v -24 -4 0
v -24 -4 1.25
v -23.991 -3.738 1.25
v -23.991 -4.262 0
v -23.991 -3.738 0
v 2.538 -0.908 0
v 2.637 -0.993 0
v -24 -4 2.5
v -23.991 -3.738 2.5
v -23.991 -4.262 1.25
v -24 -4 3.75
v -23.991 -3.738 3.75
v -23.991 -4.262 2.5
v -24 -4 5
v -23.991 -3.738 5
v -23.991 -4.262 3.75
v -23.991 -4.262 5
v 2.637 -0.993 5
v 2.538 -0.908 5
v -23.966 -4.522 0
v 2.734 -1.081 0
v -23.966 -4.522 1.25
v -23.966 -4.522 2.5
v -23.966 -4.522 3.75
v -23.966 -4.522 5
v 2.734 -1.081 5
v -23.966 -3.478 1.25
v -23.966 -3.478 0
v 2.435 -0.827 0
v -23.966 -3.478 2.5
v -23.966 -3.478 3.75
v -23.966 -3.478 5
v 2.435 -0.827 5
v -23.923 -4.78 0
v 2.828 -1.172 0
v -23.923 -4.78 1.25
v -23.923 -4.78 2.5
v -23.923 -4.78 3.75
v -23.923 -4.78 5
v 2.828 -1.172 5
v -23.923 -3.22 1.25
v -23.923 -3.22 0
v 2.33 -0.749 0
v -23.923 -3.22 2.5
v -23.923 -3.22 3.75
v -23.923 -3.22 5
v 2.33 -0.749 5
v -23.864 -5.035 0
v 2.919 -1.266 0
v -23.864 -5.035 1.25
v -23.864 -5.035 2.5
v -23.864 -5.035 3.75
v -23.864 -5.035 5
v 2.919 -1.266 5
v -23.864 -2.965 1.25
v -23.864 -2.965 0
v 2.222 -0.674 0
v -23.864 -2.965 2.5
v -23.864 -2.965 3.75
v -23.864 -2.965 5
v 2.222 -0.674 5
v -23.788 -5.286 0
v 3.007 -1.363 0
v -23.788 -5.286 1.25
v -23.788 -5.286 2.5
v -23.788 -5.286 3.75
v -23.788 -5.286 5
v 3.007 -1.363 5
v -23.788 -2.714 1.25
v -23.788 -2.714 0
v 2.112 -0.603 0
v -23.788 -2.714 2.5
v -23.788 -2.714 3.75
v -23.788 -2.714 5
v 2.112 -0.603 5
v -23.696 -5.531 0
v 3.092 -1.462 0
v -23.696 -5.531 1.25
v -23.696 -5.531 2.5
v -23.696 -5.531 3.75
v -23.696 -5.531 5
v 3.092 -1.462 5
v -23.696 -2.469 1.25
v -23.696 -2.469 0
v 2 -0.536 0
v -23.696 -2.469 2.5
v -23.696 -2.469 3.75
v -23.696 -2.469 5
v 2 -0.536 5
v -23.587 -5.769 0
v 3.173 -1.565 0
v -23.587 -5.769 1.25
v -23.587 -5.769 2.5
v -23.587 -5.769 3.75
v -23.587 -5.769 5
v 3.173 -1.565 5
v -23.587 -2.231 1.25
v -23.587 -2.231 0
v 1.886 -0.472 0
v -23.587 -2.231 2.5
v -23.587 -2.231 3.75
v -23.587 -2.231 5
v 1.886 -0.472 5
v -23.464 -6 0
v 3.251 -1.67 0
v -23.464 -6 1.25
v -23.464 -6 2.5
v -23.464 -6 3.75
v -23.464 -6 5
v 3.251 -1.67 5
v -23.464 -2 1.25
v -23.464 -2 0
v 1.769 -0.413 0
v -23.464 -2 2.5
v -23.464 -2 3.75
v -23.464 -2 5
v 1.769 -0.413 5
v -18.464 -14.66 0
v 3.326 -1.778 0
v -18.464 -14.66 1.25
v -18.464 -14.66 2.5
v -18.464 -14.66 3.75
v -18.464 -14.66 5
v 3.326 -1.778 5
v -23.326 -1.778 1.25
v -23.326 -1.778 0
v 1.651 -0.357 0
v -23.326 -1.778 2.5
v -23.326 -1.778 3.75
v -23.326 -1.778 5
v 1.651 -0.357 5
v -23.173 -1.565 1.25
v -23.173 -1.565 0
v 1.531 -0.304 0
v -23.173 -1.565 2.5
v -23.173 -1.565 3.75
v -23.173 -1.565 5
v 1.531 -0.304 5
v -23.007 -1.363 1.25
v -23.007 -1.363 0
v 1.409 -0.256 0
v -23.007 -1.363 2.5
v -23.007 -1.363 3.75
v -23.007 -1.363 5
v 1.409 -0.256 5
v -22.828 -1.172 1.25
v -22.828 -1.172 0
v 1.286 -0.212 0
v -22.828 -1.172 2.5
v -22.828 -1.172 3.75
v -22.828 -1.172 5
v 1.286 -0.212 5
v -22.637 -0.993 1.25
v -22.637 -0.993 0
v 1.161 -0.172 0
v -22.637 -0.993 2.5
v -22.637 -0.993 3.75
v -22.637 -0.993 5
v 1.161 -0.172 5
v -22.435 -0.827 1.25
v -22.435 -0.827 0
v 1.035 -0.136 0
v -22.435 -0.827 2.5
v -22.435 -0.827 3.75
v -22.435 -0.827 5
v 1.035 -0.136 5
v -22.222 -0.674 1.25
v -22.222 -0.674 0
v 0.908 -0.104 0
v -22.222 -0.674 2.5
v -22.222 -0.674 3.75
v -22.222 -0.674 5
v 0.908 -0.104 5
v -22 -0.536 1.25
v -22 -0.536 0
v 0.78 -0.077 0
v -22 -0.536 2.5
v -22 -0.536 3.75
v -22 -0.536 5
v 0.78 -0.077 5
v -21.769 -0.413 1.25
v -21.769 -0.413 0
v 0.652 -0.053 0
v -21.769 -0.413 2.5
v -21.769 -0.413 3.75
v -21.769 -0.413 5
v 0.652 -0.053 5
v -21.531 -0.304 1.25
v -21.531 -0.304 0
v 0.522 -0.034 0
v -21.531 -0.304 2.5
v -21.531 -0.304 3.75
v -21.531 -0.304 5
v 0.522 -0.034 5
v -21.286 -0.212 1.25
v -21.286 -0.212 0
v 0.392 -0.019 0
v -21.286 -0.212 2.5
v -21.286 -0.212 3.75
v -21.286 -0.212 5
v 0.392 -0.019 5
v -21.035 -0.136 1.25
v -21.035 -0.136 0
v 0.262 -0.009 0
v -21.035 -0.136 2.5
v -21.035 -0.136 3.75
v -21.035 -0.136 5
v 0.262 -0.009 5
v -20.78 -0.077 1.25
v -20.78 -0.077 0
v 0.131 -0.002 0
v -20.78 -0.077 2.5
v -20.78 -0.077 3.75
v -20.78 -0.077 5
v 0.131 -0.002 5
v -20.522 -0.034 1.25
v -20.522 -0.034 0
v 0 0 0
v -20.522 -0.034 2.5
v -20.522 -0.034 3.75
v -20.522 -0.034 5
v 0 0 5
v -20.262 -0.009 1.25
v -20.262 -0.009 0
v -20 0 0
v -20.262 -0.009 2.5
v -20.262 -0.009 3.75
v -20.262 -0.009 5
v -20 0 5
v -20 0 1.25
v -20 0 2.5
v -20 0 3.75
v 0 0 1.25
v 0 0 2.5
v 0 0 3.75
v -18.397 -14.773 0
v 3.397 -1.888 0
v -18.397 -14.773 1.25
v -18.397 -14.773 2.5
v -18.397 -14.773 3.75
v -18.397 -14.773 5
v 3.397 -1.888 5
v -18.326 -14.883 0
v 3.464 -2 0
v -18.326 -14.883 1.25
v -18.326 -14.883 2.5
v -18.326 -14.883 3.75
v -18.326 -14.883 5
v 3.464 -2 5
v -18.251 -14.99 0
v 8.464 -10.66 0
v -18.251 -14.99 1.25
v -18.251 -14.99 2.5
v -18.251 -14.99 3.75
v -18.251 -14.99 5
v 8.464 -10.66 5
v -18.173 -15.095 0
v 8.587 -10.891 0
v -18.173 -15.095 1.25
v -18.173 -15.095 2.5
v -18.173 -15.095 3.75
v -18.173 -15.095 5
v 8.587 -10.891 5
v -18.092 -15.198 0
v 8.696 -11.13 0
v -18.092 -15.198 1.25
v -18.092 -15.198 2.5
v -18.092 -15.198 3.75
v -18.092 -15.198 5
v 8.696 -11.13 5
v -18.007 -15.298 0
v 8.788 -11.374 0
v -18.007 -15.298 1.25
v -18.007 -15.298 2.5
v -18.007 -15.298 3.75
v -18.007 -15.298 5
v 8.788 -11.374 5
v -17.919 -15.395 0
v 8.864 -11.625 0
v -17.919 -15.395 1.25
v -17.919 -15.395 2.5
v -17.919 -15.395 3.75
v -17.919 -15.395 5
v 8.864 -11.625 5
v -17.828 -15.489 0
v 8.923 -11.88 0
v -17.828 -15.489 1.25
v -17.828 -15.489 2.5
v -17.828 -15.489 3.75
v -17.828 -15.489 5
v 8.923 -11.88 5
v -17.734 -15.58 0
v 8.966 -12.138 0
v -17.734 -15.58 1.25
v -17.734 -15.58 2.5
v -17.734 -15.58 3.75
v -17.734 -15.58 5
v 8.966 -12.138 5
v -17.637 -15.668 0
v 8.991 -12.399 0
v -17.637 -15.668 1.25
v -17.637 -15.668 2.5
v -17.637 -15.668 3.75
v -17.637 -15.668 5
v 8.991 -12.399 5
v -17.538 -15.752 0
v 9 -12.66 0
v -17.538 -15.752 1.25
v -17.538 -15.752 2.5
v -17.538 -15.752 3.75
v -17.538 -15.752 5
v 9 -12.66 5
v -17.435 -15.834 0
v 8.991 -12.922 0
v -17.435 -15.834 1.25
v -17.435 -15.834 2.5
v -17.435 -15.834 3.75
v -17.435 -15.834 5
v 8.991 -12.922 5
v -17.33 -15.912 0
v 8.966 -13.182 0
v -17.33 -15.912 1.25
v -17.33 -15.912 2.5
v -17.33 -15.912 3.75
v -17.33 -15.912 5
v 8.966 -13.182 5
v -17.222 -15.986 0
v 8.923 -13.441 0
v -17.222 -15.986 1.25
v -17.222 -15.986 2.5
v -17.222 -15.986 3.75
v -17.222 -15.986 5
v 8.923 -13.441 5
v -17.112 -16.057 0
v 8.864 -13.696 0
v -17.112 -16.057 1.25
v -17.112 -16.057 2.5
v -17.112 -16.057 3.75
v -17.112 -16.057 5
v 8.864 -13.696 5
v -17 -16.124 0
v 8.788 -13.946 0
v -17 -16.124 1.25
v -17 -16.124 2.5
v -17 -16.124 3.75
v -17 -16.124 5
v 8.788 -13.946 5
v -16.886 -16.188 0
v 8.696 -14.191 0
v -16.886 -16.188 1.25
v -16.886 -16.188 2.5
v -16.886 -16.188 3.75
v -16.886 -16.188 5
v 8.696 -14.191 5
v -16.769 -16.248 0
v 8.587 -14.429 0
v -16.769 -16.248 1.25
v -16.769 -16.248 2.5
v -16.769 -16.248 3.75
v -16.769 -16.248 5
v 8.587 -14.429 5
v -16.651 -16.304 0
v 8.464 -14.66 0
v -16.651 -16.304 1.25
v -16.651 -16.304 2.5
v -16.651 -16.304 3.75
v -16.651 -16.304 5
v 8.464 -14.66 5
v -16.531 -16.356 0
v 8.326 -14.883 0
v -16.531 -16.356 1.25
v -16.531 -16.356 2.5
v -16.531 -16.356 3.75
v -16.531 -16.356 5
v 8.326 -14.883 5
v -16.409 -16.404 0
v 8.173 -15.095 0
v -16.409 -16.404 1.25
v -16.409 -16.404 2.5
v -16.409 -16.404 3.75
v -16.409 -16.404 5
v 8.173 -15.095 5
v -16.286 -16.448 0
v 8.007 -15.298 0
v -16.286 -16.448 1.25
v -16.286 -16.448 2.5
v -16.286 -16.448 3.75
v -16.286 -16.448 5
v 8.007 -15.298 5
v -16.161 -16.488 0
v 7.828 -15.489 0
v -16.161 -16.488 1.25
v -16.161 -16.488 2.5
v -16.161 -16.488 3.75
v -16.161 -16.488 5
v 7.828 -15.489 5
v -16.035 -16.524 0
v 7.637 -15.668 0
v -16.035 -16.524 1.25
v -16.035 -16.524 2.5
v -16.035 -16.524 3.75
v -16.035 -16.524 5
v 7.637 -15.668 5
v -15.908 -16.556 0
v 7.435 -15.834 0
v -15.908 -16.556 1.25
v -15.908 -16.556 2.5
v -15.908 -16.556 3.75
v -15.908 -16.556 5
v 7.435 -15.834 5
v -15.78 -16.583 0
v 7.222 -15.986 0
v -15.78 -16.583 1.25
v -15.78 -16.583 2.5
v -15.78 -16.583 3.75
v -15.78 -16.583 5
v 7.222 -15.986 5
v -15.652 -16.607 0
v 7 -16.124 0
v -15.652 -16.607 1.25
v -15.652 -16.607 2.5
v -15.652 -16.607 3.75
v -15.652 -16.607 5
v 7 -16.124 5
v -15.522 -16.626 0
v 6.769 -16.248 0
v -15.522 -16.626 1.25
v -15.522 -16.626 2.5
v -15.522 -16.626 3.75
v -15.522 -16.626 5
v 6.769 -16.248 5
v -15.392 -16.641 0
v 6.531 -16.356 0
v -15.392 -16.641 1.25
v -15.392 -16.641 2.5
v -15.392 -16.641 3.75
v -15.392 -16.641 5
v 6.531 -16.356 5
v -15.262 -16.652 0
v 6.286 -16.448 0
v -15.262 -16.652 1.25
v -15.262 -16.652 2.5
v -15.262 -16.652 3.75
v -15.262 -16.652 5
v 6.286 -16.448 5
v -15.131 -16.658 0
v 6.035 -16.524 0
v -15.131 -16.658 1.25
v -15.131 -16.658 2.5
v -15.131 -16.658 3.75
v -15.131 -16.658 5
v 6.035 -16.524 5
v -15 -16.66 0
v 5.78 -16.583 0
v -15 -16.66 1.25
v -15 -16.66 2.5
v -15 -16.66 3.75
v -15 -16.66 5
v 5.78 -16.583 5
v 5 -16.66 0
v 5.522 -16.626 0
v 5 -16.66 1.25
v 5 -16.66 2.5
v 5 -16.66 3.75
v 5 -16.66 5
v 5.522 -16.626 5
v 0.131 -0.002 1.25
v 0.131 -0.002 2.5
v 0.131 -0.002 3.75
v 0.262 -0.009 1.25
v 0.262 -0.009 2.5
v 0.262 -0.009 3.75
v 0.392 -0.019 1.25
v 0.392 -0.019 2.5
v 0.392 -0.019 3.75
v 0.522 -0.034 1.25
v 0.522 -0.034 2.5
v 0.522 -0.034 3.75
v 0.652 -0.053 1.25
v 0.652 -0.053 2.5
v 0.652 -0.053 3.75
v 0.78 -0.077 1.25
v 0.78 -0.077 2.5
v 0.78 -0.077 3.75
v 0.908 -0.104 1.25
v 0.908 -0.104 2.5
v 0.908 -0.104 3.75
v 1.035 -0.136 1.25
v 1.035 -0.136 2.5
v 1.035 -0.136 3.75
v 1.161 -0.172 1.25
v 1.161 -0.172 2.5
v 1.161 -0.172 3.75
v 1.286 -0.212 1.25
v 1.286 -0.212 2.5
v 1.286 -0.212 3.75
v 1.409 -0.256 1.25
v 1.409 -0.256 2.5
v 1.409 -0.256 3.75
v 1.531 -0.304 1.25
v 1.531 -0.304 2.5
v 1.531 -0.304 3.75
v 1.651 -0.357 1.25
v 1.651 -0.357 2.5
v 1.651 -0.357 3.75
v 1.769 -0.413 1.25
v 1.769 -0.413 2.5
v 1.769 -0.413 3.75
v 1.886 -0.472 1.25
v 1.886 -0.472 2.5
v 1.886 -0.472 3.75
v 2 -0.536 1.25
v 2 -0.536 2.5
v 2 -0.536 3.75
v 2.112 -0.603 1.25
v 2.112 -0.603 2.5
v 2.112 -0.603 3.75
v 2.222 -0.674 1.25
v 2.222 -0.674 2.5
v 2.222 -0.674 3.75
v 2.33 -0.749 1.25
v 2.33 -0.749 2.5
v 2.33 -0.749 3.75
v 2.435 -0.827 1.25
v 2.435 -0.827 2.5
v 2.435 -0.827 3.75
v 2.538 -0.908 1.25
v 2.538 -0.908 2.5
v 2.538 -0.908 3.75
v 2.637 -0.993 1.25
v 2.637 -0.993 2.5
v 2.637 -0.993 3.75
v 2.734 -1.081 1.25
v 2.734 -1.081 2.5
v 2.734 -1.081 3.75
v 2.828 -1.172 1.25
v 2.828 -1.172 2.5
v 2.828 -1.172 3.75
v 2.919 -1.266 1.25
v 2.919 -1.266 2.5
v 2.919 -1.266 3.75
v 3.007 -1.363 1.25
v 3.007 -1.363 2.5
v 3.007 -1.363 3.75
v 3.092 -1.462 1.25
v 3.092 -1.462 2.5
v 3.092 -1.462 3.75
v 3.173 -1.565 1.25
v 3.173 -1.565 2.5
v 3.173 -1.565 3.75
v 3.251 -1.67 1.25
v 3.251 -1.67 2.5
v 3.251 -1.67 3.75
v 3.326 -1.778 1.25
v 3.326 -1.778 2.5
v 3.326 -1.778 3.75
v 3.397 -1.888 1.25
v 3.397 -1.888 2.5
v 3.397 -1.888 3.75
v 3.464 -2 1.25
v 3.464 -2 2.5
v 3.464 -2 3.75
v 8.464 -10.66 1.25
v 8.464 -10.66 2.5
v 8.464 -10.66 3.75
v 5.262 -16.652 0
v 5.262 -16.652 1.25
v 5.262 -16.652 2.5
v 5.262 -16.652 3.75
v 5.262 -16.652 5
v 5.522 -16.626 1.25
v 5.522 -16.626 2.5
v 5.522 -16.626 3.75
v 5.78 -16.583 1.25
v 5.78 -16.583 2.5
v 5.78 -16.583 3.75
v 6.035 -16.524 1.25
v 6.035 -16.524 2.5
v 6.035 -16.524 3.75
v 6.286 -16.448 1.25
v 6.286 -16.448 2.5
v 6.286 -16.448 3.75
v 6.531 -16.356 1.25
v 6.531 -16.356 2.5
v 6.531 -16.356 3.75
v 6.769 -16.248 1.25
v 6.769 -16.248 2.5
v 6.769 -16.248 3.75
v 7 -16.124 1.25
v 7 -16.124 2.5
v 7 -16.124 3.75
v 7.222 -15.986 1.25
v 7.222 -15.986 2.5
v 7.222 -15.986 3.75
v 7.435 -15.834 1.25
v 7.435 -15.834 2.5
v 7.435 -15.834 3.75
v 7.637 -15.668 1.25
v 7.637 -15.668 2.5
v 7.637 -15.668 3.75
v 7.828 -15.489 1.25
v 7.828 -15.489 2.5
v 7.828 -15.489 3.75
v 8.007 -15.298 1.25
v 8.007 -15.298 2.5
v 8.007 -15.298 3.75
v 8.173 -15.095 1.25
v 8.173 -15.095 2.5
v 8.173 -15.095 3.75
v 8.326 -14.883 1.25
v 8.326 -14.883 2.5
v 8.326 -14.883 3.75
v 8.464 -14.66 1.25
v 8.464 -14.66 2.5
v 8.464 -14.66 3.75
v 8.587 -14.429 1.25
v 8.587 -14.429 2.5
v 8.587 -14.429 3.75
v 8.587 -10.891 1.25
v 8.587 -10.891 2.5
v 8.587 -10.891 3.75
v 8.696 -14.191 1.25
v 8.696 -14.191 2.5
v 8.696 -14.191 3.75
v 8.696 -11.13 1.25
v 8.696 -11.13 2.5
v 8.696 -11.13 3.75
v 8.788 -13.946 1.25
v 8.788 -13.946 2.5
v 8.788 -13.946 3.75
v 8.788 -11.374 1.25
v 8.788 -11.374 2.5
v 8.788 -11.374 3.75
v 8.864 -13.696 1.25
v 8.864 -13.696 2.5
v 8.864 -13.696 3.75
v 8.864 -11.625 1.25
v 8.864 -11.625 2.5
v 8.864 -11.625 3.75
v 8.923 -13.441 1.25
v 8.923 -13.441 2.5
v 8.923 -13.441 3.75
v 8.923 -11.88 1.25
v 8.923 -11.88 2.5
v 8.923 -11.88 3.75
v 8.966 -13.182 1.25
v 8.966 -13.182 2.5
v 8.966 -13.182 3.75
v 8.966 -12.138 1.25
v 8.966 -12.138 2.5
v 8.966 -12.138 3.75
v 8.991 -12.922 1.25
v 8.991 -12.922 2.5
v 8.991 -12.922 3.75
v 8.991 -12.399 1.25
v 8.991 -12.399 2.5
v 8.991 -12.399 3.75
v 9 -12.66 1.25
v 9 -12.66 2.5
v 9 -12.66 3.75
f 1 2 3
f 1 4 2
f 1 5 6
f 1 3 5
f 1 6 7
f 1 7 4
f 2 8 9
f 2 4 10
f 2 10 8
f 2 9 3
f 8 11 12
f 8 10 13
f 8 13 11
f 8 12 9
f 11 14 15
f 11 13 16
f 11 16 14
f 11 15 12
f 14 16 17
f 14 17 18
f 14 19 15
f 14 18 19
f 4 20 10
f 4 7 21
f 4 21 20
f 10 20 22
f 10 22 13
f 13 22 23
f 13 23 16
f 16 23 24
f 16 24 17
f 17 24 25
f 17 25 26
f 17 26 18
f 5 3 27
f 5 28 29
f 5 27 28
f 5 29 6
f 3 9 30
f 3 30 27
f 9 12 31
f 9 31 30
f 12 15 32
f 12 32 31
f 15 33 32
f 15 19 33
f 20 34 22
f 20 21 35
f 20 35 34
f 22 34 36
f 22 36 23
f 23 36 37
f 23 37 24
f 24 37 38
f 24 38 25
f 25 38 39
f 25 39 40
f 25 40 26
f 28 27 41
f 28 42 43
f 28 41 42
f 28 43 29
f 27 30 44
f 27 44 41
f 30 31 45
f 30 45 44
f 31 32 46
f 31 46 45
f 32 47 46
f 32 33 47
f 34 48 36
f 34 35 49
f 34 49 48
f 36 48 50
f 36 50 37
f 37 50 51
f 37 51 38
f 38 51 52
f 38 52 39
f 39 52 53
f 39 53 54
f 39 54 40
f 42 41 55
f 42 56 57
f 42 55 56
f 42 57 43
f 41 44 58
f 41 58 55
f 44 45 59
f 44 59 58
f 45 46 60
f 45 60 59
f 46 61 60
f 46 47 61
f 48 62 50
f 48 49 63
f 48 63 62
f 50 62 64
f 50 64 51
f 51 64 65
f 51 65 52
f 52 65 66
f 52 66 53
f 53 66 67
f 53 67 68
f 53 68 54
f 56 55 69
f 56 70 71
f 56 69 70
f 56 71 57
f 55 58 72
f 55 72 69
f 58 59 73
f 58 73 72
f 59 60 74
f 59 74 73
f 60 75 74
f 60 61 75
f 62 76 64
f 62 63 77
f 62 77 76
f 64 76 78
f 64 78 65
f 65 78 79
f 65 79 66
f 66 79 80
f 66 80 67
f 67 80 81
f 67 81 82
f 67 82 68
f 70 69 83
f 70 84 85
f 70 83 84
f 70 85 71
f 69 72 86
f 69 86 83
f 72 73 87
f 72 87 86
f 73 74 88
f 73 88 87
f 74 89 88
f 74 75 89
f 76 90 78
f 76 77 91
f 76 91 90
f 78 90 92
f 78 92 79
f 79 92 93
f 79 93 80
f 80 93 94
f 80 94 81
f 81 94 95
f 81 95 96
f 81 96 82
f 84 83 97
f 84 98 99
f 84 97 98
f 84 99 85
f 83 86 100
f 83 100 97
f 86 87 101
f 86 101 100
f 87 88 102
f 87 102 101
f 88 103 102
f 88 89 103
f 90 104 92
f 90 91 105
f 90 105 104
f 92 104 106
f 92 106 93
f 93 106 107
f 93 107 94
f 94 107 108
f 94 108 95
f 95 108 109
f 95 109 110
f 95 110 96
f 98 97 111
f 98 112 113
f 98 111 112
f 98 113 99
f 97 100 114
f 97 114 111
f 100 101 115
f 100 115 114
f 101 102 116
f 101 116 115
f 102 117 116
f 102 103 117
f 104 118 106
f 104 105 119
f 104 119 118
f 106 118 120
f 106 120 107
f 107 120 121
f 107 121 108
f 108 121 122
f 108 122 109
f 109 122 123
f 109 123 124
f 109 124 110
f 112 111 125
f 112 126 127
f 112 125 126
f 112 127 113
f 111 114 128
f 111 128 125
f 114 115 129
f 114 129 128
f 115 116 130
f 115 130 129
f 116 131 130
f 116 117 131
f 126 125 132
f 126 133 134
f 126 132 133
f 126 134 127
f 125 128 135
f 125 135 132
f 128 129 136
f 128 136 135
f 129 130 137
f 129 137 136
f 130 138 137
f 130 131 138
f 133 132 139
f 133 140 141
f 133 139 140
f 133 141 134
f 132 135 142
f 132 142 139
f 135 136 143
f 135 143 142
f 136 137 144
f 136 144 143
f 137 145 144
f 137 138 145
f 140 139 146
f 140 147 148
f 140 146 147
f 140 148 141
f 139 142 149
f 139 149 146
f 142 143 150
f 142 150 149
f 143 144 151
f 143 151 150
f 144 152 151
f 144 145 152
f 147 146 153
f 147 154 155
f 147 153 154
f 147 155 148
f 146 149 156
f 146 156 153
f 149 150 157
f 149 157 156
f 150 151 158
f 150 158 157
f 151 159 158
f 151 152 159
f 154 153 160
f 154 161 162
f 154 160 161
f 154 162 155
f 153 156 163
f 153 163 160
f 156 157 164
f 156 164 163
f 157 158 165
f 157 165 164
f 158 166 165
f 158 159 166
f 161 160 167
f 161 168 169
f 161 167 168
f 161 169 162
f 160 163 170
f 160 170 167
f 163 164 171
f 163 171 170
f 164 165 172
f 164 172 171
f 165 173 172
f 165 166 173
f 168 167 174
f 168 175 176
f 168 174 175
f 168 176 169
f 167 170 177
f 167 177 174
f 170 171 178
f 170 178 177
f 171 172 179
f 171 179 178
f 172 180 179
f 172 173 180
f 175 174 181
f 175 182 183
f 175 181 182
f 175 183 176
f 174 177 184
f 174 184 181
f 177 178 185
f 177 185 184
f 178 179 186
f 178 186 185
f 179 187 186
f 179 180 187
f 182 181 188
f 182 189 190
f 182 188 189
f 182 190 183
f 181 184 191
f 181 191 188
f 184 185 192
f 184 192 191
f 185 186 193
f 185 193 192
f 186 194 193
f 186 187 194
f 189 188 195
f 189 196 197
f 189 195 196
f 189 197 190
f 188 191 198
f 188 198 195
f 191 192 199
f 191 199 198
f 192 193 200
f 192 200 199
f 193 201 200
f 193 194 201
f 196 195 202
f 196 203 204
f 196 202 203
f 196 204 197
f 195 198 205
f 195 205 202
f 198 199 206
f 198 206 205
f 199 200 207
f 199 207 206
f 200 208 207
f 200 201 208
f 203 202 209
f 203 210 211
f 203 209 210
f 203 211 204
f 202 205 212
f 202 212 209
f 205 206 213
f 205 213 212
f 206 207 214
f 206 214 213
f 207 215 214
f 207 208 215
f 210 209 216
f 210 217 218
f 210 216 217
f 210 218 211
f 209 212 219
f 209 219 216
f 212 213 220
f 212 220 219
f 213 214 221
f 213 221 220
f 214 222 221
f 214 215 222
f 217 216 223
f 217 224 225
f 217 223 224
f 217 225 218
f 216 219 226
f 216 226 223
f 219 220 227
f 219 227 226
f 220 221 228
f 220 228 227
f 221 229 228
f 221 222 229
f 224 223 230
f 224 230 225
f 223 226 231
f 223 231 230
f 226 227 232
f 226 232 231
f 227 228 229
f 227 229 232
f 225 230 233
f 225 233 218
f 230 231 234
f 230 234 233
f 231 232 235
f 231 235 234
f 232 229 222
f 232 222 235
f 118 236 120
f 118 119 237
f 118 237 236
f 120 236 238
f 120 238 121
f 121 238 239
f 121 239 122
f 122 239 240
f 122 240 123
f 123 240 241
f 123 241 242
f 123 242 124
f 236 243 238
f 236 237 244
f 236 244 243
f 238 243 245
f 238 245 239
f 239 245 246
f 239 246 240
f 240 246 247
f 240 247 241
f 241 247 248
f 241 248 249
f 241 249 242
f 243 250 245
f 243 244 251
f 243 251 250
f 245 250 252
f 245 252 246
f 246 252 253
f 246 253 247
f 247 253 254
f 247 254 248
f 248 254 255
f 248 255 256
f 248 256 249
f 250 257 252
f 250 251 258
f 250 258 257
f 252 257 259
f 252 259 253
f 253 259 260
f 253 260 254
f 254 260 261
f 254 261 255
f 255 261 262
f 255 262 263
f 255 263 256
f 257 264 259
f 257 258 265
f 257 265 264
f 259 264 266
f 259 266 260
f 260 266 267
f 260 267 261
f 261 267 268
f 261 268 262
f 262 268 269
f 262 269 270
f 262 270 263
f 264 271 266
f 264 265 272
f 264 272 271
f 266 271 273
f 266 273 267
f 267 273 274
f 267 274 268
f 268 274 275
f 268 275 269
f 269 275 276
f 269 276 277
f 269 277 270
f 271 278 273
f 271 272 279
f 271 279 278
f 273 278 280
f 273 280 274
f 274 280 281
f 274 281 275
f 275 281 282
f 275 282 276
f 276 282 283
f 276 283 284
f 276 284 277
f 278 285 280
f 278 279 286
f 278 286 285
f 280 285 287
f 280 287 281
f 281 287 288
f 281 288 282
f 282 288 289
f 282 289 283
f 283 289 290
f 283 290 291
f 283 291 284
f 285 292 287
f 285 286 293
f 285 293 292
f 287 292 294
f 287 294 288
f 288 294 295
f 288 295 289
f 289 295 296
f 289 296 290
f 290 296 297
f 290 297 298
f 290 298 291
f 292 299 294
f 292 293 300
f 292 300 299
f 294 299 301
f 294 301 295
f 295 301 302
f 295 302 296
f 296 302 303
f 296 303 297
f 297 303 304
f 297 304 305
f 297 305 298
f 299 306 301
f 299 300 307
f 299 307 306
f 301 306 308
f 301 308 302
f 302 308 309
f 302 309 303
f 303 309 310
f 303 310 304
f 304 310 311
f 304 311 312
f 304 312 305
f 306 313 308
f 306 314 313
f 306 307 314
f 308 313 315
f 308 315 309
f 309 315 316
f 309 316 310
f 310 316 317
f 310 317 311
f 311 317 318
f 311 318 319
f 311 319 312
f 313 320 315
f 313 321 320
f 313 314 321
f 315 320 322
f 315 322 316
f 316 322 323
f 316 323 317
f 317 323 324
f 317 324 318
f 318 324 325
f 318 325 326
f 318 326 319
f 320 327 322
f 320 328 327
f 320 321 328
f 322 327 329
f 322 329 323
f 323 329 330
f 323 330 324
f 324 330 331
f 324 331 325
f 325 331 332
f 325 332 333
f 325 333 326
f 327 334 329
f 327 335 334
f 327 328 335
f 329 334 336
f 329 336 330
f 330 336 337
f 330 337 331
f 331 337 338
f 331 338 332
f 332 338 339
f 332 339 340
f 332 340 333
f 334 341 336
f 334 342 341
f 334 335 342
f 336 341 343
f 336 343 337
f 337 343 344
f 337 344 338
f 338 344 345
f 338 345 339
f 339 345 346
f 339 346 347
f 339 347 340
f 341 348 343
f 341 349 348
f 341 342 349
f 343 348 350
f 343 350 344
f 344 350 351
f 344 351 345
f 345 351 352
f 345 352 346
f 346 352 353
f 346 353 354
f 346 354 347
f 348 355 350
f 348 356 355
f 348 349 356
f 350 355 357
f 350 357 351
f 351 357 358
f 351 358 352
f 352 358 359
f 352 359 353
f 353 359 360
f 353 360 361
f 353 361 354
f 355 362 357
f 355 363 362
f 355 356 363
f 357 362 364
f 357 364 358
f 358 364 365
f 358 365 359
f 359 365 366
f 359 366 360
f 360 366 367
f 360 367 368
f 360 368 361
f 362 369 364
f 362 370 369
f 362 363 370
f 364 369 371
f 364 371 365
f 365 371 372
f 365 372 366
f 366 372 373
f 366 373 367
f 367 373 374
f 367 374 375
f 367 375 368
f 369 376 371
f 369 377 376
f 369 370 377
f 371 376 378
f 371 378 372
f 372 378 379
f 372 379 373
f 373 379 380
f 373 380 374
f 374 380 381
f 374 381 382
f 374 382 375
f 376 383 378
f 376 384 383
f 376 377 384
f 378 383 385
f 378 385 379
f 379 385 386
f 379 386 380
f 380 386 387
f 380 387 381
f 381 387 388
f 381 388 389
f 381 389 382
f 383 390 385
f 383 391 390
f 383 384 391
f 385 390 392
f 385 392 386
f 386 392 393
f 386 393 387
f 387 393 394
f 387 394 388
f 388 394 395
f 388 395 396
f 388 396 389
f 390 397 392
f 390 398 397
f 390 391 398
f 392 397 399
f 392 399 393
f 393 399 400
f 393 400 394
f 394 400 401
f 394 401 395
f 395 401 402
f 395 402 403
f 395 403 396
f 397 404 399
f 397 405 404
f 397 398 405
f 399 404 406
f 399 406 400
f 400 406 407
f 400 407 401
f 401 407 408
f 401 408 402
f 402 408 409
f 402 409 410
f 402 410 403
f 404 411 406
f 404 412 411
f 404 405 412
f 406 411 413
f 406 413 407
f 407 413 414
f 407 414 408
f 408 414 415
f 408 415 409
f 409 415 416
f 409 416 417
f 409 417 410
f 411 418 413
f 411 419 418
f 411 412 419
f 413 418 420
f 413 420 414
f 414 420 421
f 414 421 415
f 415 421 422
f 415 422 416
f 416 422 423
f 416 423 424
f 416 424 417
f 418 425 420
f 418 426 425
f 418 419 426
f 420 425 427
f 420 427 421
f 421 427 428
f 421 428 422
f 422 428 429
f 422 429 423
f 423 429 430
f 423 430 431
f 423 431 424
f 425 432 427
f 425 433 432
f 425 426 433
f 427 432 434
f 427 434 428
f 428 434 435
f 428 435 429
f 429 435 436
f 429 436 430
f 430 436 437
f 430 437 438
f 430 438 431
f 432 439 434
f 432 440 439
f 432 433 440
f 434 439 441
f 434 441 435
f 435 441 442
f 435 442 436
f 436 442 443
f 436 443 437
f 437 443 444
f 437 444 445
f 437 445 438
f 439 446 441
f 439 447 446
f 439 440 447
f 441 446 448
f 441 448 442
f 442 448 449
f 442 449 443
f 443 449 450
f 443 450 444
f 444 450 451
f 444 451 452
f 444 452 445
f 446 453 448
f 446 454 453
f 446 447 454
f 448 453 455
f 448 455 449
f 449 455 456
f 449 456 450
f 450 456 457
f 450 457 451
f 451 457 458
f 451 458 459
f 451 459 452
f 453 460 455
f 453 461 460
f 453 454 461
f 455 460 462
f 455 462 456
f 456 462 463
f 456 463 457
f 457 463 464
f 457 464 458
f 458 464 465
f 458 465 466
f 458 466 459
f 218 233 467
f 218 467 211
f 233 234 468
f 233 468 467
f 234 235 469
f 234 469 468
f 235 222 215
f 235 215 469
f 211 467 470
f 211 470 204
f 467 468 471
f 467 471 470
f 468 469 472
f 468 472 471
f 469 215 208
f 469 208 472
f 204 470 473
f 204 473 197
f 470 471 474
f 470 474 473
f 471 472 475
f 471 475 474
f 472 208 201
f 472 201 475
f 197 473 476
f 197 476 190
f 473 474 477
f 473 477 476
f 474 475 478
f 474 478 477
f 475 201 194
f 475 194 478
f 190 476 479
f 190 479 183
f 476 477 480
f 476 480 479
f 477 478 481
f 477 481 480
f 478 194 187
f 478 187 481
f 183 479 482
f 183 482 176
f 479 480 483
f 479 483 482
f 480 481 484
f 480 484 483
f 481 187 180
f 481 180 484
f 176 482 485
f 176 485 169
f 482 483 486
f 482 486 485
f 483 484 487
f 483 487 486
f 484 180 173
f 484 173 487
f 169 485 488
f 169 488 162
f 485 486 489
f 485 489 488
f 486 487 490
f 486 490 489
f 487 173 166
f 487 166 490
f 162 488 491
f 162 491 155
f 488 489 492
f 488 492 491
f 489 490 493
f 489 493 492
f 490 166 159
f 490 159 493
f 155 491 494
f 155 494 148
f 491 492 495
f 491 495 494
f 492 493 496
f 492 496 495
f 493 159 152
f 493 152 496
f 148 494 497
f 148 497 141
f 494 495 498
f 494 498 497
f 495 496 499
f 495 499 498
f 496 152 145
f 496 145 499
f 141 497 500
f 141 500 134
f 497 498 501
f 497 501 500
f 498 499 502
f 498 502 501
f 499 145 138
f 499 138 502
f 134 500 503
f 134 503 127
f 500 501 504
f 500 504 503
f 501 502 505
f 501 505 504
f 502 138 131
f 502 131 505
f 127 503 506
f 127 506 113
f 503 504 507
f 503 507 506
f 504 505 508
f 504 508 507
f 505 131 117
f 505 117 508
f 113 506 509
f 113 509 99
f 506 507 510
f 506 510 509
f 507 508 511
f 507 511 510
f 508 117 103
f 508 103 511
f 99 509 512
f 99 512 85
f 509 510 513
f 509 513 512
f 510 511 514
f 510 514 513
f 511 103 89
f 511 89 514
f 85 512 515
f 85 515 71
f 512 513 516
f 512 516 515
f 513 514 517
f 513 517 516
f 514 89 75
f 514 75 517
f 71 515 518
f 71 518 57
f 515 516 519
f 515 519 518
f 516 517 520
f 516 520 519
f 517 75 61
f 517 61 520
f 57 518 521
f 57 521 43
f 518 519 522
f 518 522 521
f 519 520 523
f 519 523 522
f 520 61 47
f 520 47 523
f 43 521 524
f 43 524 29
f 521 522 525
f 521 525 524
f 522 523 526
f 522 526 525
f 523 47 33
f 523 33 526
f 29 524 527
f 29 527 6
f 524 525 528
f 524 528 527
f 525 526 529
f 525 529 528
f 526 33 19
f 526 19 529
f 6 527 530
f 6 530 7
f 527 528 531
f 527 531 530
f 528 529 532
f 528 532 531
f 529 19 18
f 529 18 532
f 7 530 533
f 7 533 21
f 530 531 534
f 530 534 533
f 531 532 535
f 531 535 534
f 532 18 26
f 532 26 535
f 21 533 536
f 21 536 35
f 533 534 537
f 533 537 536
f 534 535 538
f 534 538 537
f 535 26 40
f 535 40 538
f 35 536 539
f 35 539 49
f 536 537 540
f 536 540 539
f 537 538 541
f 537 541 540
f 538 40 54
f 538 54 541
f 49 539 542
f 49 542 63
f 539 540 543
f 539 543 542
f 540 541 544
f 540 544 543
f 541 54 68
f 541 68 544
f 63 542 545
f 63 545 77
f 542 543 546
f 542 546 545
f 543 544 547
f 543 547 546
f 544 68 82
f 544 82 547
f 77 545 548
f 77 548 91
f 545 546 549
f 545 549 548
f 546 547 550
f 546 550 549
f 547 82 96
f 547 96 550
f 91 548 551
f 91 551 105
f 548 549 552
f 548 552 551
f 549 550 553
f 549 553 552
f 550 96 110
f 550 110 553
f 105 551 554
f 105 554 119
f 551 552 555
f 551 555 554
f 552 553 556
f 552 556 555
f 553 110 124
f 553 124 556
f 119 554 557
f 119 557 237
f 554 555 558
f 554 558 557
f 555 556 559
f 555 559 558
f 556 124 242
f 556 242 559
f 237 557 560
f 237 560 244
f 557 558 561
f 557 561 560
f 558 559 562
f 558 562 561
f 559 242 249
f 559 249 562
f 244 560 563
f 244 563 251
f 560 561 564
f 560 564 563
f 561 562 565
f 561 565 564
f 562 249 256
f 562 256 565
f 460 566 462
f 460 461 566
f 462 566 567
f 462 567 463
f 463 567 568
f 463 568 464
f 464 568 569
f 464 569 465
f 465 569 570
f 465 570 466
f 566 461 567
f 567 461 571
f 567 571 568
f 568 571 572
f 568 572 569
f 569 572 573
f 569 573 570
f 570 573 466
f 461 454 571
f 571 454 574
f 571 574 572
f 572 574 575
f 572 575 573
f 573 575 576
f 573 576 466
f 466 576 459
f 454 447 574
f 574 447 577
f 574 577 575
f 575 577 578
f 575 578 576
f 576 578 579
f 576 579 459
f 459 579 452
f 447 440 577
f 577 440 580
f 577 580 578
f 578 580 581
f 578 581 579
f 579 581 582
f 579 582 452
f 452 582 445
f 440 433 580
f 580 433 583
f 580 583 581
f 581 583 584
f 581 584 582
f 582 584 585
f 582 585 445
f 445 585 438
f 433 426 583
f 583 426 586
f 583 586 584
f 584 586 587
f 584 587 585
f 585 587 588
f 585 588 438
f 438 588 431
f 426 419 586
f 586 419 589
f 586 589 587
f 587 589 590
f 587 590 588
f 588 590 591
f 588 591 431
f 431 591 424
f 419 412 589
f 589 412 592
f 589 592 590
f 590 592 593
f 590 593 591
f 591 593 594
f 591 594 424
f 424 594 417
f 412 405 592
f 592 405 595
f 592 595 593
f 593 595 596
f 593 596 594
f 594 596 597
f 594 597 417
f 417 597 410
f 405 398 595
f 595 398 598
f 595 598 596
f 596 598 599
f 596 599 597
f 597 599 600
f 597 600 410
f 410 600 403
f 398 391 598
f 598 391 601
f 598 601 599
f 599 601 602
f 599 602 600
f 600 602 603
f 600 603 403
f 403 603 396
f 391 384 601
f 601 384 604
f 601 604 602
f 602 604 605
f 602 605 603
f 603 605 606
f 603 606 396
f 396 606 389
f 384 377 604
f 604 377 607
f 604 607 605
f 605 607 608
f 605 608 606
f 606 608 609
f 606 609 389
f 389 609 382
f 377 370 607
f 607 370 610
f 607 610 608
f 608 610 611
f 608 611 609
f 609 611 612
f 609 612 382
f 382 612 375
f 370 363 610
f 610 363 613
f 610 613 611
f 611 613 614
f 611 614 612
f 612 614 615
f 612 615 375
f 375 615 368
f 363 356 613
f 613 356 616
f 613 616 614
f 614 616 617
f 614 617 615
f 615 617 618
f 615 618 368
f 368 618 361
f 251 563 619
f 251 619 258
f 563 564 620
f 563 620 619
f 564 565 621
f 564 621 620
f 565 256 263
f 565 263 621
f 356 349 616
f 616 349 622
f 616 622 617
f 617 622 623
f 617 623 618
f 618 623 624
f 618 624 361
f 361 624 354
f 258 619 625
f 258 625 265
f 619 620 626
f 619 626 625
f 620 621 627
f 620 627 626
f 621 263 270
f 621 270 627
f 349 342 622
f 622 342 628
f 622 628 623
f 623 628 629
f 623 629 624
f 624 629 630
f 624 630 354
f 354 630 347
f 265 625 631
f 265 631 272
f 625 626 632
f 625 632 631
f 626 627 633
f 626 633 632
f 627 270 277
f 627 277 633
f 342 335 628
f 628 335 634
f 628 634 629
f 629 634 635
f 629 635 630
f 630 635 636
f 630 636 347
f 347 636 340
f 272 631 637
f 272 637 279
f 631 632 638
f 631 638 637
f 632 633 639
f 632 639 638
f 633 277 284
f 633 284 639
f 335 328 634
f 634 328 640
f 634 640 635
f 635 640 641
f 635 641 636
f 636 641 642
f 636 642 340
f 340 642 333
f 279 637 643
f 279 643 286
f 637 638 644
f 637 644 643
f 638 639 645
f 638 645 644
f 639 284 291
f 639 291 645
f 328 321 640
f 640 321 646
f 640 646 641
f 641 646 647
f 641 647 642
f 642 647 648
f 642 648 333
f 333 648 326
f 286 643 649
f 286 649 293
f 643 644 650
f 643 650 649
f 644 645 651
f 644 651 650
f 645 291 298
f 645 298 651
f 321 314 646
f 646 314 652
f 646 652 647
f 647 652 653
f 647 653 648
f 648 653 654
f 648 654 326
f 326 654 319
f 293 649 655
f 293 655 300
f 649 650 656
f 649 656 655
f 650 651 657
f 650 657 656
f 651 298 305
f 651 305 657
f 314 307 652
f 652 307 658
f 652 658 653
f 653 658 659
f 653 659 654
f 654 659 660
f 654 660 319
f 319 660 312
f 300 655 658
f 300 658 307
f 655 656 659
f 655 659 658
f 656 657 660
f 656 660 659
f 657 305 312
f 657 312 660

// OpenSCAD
// Start: lazy_union
default_5_default_5();
// End: lazy_union

// Modules.

// 'PartMaterial undef-default - default 5.0'
module default_5_default_5() {
  // 'None : _combine_solids_and_holes'
  union() {
    // 'default : _combine_solids_and_holes'
    union() {
      // 'prism : _combine_solids_and_holes'
      union() {
        // 'prism'
        linear_extrude(height=5.0, twist=0.0, slices=4, scale=[1.0, 1.0], $fn=32) {
          polygon(points=[[0.0, 0.0], [0.13087633128710466, -0.002141650094537262], [0.2616125169205722, -0.008564307045586084], [0.3920685613182422, -0.019261093311212285], [0.522104768880206, -0.03422055450475847], [0.6515818935783553, -0.05342667166048409], [0.7803612880645133, -0.07685887838707828], [0.9083050521374929, -0.10449208289066547], [1.035276180410083, -0.13629669484372675], [1.1611387090178493, -0.17223865707116426], [1.285757861212646, -0.21227948201957725], [1.4090001916849335, -0.256376292970697], [1.5307337294603593, -0.30448186995485305], [1.6508281192175782, -0.3565447003152964], [1.769154760876005, -0.41250903386924653], [1.8855869473039903, -0.4723149426065798], [1.9999999999999996, -0.5358983848622452], [2.1122714026014715, -0.603191273893684], [2.2222809320784083, -0.6741215507898186], [2.329910787471208, -0.748613261633539], [2.435045716034882, -0.8265866388350589], [2.5375731366545815, -0.9079581865490516], [2.637383260400275, -0.99264077008409], [2.7343692080914845, -1.0805437092086572], [2.8284271247461894, -1.1715728752538093], [2.919456290791342, -1.2656307919085141], [3.007359229915909, -1.3626167395997237], [3.0920418134509475, -1.4624268633454176], [3.17341336116494, -1.5649542839651165], [3.25138673836646, -1.6700892125287905], [3.3258784492101805, -1.7777190679215904], [3.396808726106315, -1.8877285973985272], [3.464101615137754, -1.9999999999999991], [8.464101615137757, -10.660254037844386], [8.587490966130755, -10.89109927696838], [8.69551813004515, -11.129520308384027], [8.787720517980425, -11.37449617663174], [8.863703305156275, -11.624977857434303], [8.923141121612925, -11.879892749779872], [8.965779445495244, -12.13814926896418], [8.991435692954417, -12.398641520923812], [9.000000000000004, -12.660254037844386], [8.991435692954417, -12.921866554764957], [8.965779445495244, -13.18235880672459], [8.923141121612925, -13.440615325908897], [8.863703305156276, -13.695530218254468], [8.787720517980425, -13.94601189905703], [8.69551813004515, -14.190987767304744], [8.587490966130757, -14.42940879872039], [8.464101615137757, -14.660254037844384], [8.325878449210185, -14.882534969922792], [8.173413361164943, -15.095299753879267], [8.007359229915913, -15.29763729824466], [7.828427124746194, -15.488681162590574], [7.637383260400279, -15.667613267760293], [7.435045716034887, -15.833667399009325], [7.222280932078413, -15.986132487054565], [7.000000000000004, -16.12435565298214], [6.76915476087601, -16.247745003975137], [6.530733729460364, -16.35577216788953], [6.285757861212652, -16.447974555824807], [6.035276180410087, -16.523957343000657], [5.780361288064517, -16.583395159457307], [5.522104768880212, -16.626033483339626], [5.261612516920578, -16.6516897307988], [5.000000000000005, -16.660254037844386], [-14.999999999999995, -16.660254037844396], [-15.130876331287098, -16.65811238774986], [-15.261612516920566, -16.65168973079881], [-15.392068561318236, -16.640992944533185], [-15.522104768880201, -16.62603348333964], [-15.65158189357835, -16.606827366183914], [-15.780361288064508, -16.583395159457318], [-15.908305052137488, -16.55576195495373], [-16.03527618041008, -16.52395734300067], [-16.161138709017845, -16.48801538077323], [-16.28575786121264, -16.44797455582482], [-16.409000191684928, -16.4038777448737], [-16.530733729460355, -16.355772167889544], [-16.650828119217575, -16.3037093375291], [-16.769154760876, -16.24774500397515], [-16.885586947303985, -16.187939095237816], [-16.999999999999993, -16.124355652982153], [-17.112271402601465, -16.05706276395071], [-17.222280932078405, -15.986132487054578], [-17.329910787471203, -15.91164077621086], [-17.435045716034878, -15.833667399009338], [-17.537573136654576, -15.752295851295345], [-17.63738326040027, -15.667613267760307], [-17.73436920809148, -15.57971032863574], [-17.828427124746185, -15.488681162590588], [-17.919456290791338, -15.394623245935882], [-18.007359229915906, -15.297637298244673], [-18.092041813450944, -15.197827174498979], [-18.173413361164936, -15.09529975387928], [-18.251386738366456, -14.990164825315606], [-18.325878449210176, -14.882534969922807], [-18.39680872610631, -14.77252544044587], [-18.46410161513775, -14.660254037844398], [-23.464101615137753, -6.000000000000012], [-23.58749096613075, -5.7691547608760185], [-23.695518130045144, -5.530733729460373], [-23.78772051798042, -5.285757861212661], [-23.86370330515627, -5.035276180410097], [-23.92314112161292, -4.780361288064526], [-23.96577944549524, -4.52210476888022], [-23.991435692954415, -4.261612516920586], [-24.0, -4.000000000000014], [-23.991435692954415, -3.7383874830794417], [-23.96577944549524, -3.477895231119808], [-23.92314112161292, -3.2196387119355014], [-23.863703305156275, -2.9647238195899304], [-23.787720517980425, -2.7142421387873688], [-23.695518130045148, -2.469266270539655], [-23.587490966130755, -2.230845239124009], [-23.464101615137757, -2.000000000000014], [-23.325878449210183, -1.777719067921606], [-23.173413361164943, -1.5649542839651325], [-23.00735922991591, -1.362616739599738], [-22.82842712474619, -1.1715728752538248], [-22.637383260400277, -0.9926407700841042], [-22.43504571603488, -0.8265866388350722], [-22.222280932078412, -0.6741215507898328], [-22.000000000000004, -0.5358983848622603], [-21.76915476087601, -0.4125090338692603], [-21.530733729460362, -0.3044818699548659], [-21.28575786121265, -0.21227948201959101], [-21.035276180410087, -0.13629669484373963], [-20.78036128806452, -0.07685887838709116], [-20.52210476888021, -0.034220554504770906], [-20.261612516920575, -0.008564307045598074], [-20.000000000000004, -1.199040866595169e-14]]);
        }
      }
    }
  }
} // end module default_5_default_5
